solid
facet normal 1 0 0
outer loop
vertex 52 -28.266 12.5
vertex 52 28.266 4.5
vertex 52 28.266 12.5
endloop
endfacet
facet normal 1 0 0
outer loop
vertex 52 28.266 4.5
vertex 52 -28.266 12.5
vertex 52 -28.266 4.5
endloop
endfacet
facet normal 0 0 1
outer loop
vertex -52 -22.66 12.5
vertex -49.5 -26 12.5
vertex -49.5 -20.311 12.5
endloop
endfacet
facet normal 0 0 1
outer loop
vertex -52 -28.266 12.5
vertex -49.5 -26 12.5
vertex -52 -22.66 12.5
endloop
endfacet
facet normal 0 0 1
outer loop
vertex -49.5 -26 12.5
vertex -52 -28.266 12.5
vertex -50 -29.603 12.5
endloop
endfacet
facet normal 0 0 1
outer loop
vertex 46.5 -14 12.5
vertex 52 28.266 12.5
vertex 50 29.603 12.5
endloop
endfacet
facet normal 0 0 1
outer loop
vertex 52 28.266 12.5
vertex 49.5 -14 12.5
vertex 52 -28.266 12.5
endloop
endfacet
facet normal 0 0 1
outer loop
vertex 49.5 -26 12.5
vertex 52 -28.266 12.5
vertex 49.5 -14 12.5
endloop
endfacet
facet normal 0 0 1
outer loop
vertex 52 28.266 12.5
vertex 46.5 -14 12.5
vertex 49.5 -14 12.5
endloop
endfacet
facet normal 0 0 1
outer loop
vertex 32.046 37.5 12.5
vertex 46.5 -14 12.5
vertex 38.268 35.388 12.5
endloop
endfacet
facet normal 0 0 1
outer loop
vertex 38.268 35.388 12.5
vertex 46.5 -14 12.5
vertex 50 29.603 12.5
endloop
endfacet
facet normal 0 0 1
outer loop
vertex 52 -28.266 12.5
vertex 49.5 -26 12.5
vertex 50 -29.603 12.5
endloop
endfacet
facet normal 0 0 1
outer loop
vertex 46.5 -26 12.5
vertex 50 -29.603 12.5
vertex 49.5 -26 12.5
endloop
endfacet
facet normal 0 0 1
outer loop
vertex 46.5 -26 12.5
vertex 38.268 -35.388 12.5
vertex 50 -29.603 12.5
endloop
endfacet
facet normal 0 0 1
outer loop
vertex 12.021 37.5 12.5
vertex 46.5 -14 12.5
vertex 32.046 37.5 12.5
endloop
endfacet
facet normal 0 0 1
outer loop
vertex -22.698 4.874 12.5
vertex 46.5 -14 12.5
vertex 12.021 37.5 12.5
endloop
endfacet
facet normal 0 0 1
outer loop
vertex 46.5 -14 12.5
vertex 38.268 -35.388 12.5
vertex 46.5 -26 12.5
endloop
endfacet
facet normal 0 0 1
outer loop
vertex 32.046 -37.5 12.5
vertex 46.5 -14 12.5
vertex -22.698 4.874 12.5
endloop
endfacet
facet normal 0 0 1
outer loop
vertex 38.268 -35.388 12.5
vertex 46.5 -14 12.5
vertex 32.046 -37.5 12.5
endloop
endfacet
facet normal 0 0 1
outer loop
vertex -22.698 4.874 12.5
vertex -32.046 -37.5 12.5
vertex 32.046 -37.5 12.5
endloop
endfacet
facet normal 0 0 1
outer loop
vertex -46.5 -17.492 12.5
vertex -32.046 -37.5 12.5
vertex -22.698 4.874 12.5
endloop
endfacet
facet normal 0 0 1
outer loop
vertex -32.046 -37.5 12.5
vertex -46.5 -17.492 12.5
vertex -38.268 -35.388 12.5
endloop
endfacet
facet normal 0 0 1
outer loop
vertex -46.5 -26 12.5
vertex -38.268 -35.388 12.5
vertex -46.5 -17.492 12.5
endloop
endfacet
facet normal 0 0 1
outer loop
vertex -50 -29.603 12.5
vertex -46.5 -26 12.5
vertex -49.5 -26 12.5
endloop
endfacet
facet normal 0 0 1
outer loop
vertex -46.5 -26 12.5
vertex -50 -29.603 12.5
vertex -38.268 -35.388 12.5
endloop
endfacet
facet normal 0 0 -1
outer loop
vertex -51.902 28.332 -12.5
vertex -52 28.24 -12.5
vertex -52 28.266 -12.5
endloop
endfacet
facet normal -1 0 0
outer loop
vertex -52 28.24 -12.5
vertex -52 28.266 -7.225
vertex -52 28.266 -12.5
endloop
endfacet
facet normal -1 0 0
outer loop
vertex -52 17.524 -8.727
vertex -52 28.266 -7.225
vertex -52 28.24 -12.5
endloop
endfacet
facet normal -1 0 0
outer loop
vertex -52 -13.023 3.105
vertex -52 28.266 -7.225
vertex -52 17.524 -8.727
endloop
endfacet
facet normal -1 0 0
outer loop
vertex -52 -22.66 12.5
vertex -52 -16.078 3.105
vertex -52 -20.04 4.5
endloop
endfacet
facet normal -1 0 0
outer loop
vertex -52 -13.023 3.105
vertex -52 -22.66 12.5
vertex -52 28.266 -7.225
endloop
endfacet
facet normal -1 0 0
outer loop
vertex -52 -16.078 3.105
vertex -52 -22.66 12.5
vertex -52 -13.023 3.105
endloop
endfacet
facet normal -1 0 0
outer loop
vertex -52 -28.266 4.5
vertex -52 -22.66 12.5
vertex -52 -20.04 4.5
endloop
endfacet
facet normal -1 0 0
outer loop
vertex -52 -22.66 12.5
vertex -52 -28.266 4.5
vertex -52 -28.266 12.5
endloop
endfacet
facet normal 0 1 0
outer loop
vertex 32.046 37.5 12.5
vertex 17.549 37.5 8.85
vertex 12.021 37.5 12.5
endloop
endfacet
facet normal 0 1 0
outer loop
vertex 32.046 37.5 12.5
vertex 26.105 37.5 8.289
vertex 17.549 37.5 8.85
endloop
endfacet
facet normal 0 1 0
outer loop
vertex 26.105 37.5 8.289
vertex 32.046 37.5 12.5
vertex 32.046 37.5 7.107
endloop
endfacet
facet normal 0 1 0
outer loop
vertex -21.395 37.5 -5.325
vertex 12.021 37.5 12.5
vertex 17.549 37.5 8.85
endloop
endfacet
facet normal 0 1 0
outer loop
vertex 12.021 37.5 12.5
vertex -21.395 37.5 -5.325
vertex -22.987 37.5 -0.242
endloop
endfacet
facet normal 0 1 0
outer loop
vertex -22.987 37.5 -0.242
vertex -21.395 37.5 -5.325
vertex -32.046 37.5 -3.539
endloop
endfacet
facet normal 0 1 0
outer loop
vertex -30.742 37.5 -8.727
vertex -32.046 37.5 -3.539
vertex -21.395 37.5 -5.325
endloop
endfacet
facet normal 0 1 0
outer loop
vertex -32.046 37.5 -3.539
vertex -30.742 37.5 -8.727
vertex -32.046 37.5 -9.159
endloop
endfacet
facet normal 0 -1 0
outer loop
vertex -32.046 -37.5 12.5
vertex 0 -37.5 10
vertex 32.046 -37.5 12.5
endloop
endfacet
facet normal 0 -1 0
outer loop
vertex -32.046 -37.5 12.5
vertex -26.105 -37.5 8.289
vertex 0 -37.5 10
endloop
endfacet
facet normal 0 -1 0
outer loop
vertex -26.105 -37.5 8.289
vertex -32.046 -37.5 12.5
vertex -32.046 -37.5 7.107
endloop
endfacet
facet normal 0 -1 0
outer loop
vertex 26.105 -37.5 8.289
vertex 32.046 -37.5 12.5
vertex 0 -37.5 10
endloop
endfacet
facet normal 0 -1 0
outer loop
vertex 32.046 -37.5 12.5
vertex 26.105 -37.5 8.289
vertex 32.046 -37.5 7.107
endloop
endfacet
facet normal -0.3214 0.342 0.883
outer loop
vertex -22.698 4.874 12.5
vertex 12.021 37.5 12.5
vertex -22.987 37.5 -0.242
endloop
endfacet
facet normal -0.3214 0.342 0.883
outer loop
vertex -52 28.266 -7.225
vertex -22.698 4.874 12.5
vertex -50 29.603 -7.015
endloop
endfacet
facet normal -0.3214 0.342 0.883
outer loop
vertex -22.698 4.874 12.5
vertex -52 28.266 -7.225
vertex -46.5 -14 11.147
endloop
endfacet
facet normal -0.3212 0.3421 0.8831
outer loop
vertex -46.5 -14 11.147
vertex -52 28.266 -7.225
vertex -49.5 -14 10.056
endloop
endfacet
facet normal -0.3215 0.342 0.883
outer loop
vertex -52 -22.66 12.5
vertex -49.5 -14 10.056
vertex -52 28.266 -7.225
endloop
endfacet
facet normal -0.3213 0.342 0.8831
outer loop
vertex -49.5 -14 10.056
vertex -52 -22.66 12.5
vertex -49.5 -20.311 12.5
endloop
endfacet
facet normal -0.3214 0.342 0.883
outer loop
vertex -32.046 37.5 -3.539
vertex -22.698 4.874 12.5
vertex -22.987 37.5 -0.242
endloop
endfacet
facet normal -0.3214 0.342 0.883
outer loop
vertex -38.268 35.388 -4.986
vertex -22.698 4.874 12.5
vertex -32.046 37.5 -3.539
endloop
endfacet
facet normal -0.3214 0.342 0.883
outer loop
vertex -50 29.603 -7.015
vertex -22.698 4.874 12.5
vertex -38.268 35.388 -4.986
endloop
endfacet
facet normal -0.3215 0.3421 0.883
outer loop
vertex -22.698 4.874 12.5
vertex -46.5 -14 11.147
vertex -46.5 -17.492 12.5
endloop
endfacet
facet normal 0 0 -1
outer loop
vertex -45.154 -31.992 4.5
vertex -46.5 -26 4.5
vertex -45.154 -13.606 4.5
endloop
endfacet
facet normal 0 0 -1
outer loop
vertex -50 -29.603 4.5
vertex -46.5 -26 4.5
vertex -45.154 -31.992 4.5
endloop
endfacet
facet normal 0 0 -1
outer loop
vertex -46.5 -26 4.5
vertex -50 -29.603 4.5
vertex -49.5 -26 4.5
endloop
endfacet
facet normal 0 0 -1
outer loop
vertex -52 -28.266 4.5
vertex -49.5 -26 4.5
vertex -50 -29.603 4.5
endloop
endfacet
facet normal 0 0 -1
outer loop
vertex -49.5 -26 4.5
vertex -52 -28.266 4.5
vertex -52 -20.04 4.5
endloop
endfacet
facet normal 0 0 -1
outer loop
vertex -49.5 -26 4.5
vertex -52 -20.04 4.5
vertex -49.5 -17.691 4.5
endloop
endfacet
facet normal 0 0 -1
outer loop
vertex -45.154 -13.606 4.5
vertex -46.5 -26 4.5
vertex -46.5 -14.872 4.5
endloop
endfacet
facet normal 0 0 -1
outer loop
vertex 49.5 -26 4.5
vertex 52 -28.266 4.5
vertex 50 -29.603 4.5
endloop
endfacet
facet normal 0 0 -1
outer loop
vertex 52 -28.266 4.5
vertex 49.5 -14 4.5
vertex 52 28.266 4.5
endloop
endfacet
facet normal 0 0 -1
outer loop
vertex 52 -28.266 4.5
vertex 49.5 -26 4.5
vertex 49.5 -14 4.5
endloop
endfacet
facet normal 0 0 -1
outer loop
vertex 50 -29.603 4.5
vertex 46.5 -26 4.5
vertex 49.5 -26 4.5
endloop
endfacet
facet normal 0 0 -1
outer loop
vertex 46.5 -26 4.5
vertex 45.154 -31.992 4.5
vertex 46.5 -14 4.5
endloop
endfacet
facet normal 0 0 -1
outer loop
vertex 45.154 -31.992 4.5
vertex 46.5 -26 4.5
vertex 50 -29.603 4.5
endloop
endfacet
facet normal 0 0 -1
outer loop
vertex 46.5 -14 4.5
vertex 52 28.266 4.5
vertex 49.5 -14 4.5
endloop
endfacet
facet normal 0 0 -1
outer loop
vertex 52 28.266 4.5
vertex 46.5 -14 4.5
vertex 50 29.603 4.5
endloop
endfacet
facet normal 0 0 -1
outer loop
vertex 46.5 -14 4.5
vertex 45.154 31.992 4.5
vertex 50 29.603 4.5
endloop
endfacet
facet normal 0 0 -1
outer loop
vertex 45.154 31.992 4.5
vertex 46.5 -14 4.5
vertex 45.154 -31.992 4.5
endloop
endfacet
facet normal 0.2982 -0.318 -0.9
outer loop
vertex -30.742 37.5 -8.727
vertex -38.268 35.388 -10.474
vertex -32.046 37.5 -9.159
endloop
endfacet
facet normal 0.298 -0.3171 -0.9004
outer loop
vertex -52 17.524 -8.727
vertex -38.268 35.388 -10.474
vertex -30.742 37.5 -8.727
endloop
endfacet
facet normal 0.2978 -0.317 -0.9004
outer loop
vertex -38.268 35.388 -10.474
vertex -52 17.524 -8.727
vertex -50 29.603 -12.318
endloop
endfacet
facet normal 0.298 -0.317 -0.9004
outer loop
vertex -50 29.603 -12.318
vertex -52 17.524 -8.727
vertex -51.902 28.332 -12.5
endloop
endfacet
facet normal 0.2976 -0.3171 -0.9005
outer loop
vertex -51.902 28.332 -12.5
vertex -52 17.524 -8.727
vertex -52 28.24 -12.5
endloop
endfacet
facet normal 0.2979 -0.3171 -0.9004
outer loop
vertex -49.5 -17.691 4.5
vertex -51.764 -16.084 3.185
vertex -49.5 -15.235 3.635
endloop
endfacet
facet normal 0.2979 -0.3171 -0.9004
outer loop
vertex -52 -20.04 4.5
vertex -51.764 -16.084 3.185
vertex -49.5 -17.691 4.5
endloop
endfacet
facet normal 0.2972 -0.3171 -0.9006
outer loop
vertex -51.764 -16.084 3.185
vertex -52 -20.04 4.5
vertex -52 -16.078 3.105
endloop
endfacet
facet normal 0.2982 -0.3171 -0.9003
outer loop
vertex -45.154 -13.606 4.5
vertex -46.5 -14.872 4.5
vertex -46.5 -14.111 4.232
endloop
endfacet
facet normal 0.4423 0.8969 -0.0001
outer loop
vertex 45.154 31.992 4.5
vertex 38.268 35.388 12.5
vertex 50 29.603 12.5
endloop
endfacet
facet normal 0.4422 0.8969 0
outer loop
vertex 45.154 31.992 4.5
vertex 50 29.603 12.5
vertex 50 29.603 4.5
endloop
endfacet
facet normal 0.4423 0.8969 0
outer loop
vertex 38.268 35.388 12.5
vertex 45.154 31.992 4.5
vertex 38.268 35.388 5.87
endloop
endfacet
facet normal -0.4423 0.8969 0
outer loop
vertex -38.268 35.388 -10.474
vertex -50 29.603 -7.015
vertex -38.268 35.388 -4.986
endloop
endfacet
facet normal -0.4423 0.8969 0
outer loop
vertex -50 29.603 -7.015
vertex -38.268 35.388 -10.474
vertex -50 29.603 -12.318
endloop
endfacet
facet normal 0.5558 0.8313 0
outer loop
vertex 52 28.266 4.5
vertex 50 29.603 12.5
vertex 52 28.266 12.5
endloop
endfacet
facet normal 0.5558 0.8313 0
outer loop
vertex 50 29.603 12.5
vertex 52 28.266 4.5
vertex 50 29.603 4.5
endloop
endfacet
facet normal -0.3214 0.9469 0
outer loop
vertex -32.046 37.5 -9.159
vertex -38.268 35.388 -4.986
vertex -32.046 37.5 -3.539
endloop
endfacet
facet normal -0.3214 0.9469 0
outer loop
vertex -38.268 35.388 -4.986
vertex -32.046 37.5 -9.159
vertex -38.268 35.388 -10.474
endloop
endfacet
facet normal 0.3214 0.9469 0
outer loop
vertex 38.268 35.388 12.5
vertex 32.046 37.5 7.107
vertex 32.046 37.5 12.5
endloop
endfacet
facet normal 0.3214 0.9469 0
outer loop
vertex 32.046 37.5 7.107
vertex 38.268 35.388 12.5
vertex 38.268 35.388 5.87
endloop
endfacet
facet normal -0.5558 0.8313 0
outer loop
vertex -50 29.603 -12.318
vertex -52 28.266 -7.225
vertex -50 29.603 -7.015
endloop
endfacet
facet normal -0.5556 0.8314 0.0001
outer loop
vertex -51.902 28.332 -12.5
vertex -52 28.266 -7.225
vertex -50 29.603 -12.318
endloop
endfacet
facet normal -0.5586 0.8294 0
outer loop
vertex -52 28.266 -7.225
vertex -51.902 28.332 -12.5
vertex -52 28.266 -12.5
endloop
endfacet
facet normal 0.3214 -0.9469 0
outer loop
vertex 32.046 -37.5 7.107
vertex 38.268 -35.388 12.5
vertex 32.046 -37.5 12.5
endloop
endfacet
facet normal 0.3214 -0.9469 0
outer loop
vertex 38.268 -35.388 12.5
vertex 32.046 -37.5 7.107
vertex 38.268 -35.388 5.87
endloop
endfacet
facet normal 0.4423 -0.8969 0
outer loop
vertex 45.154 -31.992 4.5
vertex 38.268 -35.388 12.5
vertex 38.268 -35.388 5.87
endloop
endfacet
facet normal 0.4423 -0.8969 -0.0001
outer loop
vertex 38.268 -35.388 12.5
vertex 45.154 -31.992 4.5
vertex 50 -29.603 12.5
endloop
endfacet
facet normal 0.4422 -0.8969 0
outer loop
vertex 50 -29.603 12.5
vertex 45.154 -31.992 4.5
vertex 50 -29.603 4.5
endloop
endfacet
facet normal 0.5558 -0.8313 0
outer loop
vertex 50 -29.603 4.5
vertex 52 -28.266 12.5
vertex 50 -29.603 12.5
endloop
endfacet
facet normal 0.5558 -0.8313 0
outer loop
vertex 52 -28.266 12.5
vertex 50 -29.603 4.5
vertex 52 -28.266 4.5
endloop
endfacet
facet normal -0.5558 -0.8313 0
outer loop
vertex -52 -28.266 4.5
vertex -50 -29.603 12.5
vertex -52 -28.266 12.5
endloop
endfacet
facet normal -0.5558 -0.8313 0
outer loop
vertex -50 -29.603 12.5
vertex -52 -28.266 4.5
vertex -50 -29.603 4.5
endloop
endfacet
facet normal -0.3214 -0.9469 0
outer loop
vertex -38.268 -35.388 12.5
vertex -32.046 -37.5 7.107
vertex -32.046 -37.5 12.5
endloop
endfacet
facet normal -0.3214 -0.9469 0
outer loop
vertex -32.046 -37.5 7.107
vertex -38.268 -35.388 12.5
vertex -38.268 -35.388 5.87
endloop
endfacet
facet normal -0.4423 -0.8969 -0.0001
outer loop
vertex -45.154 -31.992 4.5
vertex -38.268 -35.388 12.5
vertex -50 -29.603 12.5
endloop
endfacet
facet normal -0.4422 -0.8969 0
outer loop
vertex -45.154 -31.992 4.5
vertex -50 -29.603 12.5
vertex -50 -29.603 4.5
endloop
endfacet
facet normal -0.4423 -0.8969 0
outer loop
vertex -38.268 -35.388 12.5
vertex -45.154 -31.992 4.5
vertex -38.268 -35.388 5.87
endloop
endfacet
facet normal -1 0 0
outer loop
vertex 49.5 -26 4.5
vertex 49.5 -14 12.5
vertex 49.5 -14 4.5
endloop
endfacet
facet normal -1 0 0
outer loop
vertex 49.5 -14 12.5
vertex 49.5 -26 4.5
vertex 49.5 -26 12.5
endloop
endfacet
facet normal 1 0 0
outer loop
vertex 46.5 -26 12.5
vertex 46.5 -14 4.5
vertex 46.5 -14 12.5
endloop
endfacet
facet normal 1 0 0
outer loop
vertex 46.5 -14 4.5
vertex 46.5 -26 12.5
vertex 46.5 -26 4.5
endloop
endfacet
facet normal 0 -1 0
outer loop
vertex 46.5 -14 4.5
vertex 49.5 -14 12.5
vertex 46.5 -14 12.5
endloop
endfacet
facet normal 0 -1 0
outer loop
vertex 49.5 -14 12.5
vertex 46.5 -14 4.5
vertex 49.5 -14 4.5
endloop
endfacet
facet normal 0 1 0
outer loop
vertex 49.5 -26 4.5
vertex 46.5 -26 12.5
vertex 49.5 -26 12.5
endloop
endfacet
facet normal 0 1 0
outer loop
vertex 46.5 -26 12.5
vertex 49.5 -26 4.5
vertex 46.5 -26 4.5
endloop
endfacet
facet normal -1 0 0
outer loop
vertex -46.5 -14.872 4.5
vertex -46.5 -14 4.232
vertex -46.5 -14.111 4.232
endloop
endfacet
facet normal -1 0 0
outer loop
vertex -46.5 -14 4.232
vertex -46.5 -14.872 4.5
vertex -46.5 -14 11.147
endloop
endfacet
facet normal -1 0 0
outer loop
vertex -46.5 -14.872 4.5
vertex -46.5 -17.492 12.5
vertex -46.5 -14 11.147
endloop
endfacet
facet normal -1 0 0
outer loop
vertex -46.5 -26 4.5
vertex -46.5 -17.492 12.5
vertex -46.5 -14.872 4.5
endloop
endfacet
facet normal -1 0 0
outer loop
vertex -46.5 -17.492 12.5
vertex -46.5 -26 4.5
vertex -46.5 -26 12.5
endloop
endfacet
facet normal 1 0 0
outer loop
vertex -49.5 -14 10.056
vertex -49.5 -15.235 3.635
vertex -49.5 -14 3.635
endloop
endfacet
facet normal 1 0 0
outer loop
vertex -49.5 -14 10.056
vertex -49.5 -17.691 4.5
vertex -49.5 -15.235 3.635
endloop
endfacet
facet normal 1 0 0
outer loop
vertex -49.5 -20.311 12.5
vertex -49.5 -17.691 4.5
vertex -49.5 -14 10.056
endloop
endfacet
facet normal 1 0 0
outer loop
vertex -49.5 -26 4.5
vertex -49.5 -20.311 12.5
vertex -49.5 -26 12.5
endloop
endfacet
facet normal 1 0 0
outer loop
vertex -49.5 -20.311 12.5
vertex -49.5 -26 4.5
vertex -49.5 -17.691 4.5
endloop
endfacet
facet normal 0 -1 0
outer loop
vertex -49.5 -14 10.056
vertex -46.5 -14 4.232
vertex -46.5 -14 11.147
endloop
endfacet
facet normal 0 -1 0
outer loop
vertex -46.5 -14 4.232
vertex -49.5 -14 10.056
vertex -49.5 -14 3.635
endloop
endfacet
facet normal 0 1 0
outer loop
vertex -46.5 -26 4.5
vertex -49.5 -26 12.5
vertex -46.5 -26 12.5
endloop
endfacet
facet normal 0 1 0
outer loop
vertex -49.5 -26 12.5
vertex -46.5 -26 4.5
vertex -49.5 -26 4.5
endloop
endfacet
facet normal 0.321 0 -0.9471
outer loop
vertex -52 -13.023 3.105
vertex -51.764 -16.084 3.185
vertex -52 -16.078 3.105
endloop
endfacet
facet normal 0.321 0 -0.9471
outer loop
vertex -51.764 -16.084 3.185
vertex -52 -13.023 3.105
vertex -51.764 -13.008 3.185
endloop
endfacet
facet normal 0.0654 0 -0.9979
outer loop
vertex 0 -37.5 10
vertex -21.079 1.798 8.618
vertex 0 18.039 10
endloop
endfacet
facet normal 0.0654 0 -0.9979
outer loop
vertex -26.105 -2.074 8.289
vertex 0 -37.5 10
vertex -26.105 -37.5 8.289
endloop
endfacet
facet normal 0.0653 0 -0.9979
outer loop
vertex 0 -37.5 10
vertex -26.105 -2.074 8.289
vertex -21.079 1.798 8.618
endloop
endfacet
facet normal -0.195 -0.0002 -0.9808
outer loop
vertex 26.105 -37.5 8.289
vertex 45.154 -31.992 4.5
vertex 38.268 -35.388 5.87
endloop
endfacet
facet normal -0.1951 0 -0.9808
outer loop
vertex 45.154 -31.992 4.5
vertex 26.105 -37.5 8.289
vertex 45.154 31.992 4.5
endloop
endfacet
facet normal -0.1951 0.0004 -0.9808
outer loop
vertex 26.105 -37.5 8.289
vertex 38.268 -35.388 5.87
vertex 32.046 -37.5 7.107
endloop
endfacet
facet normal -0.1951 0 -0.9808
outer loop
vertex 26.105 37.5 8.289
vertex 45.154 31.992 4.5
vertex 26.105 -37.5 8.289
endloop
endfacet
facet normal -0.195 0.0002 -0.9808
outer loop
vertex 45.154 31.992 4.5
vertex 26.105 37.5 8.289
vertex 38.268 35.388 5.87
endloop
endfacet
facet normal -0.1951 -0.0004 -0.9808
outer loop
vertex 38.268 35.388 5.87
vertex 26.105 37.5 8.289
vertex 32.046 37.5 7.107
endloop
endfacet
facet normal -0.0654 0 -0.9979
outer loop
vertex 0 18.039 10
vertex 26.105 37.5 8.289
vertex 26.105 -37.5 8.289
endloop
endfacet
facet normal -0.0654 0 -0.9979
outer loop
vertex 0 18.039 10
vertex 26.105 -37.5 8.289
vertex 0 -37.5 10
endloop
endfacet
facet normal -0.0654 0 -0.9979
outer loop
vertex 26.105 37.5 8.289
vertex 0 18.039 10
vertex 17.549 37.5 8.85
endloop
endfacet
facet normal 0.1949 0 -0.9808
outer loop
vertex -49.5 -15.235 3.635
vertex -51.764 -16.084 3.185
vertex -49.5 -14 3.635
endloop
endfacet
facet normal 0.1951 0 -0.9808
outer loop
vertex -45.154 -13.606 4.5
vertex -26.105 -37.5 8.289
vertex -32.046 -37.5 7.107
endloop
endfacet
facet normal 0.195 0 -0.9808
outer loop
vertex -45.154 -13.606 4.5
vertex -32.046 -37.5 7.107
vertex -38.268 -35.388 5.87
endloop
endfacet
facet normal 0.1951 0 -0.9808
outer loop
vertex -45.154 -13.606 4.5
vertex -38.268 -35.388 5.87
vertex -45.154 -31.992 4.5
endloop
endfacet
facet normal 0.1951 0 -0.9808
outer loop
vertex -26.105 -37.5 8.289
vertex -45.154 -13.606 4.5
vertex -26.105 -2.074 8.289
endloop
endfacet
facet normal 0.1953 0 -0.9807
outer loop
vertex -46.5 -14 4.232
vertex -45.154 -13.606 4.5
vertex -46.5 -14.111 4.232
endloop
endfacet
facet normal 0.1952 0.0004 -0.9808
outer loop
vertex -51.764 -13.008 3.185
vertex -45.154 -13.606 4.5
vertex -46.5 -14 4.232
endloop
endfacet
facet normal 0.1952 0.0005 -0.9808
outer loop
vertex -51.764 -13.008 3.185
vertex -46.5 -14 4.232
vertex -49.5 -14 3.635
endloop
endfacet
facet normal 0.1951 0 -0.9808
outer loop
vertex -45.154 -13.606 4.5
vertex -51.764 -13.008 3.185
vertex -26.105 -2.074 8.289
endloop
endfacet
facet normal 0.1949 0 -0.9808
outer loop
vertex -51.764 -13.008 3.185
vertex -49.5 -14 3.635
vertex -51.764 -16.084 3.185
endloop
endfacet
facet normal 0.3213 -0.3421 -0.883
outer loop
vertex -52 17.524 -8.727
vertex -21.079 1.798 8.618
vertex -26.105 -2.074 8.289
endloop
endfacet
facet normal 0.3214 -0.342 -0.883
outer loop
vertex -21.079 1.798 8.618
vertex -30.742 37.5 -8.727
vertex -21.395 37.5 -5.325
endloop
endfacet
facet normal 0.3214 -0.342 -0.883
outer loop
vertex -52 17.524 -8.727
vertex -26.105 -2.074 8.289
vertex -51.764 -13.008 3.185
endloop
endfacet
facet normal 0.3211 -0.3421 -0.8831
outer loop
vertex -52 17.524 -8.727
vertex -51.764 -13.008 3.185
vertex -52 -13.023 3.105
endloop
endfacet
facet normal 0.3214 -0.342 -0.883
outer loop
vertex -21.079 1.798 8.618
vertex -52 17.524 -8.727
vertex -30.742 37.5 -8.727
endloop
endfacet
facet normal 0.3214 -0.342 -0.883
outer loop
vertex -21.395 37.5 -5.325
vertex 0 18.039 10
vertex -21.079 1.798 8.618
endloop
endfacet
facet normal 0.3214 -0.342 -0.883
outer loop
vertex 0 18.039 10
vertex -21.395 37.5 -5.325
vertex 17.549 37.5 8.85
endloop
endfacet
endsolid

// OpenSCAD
// Generated by SolidPython 1.1.3 on 2024-05-02 16:29:12
$fn = 48;


union() {
	difference() {
		difference() {
			difference() {
				difference() {
					difference() {
						difference() {
							difference() {
								cube(center = true, size = [104, 75, 25]);
								rotate(a = [-20, -20, 0]) {
									translate(v = [-20, 20, 45]) {
										cube(center = true, size = [1000, 7500, 50]);
									}
								}
							}
							scale(v = [1.1000000000, 1.1000000000, 1]) {
								translate(v = [0, 0, -8]) {
									difference() {
										cube(center = true, size = [104, 75, 25]);
										rotate(a = [-20, -20, 0]) {
											translate(v = [-20, 20, 45]) {
												cube(center = true, size = [1000, 7500, 50]);
											}
										}
									}
								}
							}
						}
						difference() {
							translate(v = [0, -57, 0]) {
								cylinder(center = true, h = 100, r = 110);
							}
							translate(v = [0, -57, 0]) {
								cylinder(center = true, h = 110, r = 100);
							}
						}
					}
					difference() {
						translate(v = [0, 57, 0]) {
							cylinder(center = true, h = 100, r = 110);
						}
						translate(v = [0, 57, 0]) {
							cylinder(center = true, h = 110, r = 100);
						}
					}
				}
				translate(v = [48, -20, 0]) {
					cube(center = true, size = [3, 12, 100]);
				}
			}
			translate(v = [-48, -20, 0]) {
				cube(center = true, size = [3, 12, 100]);
			}
		}
		difference() {
			translate(v = [0, 0, -190]) {
				rotate(a = [90, 0, 0]) {
					cylinder(center = true, h = 100, r = 200);
				}
			}
			rotate(a = [-20, -20, 0]) {
				translate(v = [-20, 20, 40]) {
					cube(center = true, size = [1000, 7500, 50]);
				}
			}
		}
	}
}
/***********************************************
*********      SolidPython code:      **********
************************************************
 
#! /usr/bin/env python3
import sys
import numpy as np
from solid import scad_render_to_file, difference
from solid.objects import cube, translate, union, rotate, color, cylinder, scale


SEGMENTS = 48

def basic_geometry():

    shapes = []
    base = cube([104, 75, 25], center=True)
    cutter = rotate([-20, -20, 0])(translate([-20, 20, 45])(cube([1000, 7500, 50], center=True)))
    base = difference()(base, cutter)
    base_cutter = scale([1.1, 1.1, 1])(translate([0, 0, -8])(base))
    base = difference()(base, base_cutter)

    cyl2 = translate([0, -57, 0])(cylinder(r=100, h=110, center=True))
    cyl3 = translate([0, -57, 0])(cylinder(r=110, h=100, center=True))
    cyl3 = difference()(cyl3, cyl2)
    base = difference()(base, cyl3)

    cyl2 = translate([0, 57, 0])(cylinder(r=100, h=110, center=True))
    cyl3 = translate([0, 57, 0])(cylinder(r=110, h=100, center=True))
    cyl3 = difference()(cyl3, cyl2)
    base = difference()(base, cyl3)

    strap_hole = translate([48, -20, 0])(cube([3, 12, 100], center=True))
    base = difference()(base, strap_hole)
    strap_hole = translate([-48, -20, 0])(cube([3, 12, 100], center=True))
    base = difference()(base, strap_hole)

    under_cyl = translate([0, 0, -190])(rotate([90, 0, 0])(cylinder(r=200, h=100, center=True)))
    block_cyl = rotate([-20, -20, 0])(translate([-20, 20, 40])(cube([1000, 7500, 50], center=True)))
    under_cyl = difference()(under_cyl, block_cyl)
    base = difference()(base, under_cyl)

    shapes.append(base)
    #shapes.append(under_cyl)
    return union()(*shapes)

if __name__ == '__main__':
    out_dir = sys.argv[1] if len(sys.argv) > 1 else None

    a = basic_geometry()

    # Adding the file_header argument as shown allows you to change
    # the detail of arcs by changing the SEGMENTS variable.  This can
    # be expensive when making lots of small curves, but is otherwise
    # useful.
    file_out = scad_render_to_file(a, out_dir=out_dir, file_header=f'$fn = {SEGMENTS};')
    print(f"{__file__}: SCAD file written to: \n{file_out}")
 
 
************************************************/
